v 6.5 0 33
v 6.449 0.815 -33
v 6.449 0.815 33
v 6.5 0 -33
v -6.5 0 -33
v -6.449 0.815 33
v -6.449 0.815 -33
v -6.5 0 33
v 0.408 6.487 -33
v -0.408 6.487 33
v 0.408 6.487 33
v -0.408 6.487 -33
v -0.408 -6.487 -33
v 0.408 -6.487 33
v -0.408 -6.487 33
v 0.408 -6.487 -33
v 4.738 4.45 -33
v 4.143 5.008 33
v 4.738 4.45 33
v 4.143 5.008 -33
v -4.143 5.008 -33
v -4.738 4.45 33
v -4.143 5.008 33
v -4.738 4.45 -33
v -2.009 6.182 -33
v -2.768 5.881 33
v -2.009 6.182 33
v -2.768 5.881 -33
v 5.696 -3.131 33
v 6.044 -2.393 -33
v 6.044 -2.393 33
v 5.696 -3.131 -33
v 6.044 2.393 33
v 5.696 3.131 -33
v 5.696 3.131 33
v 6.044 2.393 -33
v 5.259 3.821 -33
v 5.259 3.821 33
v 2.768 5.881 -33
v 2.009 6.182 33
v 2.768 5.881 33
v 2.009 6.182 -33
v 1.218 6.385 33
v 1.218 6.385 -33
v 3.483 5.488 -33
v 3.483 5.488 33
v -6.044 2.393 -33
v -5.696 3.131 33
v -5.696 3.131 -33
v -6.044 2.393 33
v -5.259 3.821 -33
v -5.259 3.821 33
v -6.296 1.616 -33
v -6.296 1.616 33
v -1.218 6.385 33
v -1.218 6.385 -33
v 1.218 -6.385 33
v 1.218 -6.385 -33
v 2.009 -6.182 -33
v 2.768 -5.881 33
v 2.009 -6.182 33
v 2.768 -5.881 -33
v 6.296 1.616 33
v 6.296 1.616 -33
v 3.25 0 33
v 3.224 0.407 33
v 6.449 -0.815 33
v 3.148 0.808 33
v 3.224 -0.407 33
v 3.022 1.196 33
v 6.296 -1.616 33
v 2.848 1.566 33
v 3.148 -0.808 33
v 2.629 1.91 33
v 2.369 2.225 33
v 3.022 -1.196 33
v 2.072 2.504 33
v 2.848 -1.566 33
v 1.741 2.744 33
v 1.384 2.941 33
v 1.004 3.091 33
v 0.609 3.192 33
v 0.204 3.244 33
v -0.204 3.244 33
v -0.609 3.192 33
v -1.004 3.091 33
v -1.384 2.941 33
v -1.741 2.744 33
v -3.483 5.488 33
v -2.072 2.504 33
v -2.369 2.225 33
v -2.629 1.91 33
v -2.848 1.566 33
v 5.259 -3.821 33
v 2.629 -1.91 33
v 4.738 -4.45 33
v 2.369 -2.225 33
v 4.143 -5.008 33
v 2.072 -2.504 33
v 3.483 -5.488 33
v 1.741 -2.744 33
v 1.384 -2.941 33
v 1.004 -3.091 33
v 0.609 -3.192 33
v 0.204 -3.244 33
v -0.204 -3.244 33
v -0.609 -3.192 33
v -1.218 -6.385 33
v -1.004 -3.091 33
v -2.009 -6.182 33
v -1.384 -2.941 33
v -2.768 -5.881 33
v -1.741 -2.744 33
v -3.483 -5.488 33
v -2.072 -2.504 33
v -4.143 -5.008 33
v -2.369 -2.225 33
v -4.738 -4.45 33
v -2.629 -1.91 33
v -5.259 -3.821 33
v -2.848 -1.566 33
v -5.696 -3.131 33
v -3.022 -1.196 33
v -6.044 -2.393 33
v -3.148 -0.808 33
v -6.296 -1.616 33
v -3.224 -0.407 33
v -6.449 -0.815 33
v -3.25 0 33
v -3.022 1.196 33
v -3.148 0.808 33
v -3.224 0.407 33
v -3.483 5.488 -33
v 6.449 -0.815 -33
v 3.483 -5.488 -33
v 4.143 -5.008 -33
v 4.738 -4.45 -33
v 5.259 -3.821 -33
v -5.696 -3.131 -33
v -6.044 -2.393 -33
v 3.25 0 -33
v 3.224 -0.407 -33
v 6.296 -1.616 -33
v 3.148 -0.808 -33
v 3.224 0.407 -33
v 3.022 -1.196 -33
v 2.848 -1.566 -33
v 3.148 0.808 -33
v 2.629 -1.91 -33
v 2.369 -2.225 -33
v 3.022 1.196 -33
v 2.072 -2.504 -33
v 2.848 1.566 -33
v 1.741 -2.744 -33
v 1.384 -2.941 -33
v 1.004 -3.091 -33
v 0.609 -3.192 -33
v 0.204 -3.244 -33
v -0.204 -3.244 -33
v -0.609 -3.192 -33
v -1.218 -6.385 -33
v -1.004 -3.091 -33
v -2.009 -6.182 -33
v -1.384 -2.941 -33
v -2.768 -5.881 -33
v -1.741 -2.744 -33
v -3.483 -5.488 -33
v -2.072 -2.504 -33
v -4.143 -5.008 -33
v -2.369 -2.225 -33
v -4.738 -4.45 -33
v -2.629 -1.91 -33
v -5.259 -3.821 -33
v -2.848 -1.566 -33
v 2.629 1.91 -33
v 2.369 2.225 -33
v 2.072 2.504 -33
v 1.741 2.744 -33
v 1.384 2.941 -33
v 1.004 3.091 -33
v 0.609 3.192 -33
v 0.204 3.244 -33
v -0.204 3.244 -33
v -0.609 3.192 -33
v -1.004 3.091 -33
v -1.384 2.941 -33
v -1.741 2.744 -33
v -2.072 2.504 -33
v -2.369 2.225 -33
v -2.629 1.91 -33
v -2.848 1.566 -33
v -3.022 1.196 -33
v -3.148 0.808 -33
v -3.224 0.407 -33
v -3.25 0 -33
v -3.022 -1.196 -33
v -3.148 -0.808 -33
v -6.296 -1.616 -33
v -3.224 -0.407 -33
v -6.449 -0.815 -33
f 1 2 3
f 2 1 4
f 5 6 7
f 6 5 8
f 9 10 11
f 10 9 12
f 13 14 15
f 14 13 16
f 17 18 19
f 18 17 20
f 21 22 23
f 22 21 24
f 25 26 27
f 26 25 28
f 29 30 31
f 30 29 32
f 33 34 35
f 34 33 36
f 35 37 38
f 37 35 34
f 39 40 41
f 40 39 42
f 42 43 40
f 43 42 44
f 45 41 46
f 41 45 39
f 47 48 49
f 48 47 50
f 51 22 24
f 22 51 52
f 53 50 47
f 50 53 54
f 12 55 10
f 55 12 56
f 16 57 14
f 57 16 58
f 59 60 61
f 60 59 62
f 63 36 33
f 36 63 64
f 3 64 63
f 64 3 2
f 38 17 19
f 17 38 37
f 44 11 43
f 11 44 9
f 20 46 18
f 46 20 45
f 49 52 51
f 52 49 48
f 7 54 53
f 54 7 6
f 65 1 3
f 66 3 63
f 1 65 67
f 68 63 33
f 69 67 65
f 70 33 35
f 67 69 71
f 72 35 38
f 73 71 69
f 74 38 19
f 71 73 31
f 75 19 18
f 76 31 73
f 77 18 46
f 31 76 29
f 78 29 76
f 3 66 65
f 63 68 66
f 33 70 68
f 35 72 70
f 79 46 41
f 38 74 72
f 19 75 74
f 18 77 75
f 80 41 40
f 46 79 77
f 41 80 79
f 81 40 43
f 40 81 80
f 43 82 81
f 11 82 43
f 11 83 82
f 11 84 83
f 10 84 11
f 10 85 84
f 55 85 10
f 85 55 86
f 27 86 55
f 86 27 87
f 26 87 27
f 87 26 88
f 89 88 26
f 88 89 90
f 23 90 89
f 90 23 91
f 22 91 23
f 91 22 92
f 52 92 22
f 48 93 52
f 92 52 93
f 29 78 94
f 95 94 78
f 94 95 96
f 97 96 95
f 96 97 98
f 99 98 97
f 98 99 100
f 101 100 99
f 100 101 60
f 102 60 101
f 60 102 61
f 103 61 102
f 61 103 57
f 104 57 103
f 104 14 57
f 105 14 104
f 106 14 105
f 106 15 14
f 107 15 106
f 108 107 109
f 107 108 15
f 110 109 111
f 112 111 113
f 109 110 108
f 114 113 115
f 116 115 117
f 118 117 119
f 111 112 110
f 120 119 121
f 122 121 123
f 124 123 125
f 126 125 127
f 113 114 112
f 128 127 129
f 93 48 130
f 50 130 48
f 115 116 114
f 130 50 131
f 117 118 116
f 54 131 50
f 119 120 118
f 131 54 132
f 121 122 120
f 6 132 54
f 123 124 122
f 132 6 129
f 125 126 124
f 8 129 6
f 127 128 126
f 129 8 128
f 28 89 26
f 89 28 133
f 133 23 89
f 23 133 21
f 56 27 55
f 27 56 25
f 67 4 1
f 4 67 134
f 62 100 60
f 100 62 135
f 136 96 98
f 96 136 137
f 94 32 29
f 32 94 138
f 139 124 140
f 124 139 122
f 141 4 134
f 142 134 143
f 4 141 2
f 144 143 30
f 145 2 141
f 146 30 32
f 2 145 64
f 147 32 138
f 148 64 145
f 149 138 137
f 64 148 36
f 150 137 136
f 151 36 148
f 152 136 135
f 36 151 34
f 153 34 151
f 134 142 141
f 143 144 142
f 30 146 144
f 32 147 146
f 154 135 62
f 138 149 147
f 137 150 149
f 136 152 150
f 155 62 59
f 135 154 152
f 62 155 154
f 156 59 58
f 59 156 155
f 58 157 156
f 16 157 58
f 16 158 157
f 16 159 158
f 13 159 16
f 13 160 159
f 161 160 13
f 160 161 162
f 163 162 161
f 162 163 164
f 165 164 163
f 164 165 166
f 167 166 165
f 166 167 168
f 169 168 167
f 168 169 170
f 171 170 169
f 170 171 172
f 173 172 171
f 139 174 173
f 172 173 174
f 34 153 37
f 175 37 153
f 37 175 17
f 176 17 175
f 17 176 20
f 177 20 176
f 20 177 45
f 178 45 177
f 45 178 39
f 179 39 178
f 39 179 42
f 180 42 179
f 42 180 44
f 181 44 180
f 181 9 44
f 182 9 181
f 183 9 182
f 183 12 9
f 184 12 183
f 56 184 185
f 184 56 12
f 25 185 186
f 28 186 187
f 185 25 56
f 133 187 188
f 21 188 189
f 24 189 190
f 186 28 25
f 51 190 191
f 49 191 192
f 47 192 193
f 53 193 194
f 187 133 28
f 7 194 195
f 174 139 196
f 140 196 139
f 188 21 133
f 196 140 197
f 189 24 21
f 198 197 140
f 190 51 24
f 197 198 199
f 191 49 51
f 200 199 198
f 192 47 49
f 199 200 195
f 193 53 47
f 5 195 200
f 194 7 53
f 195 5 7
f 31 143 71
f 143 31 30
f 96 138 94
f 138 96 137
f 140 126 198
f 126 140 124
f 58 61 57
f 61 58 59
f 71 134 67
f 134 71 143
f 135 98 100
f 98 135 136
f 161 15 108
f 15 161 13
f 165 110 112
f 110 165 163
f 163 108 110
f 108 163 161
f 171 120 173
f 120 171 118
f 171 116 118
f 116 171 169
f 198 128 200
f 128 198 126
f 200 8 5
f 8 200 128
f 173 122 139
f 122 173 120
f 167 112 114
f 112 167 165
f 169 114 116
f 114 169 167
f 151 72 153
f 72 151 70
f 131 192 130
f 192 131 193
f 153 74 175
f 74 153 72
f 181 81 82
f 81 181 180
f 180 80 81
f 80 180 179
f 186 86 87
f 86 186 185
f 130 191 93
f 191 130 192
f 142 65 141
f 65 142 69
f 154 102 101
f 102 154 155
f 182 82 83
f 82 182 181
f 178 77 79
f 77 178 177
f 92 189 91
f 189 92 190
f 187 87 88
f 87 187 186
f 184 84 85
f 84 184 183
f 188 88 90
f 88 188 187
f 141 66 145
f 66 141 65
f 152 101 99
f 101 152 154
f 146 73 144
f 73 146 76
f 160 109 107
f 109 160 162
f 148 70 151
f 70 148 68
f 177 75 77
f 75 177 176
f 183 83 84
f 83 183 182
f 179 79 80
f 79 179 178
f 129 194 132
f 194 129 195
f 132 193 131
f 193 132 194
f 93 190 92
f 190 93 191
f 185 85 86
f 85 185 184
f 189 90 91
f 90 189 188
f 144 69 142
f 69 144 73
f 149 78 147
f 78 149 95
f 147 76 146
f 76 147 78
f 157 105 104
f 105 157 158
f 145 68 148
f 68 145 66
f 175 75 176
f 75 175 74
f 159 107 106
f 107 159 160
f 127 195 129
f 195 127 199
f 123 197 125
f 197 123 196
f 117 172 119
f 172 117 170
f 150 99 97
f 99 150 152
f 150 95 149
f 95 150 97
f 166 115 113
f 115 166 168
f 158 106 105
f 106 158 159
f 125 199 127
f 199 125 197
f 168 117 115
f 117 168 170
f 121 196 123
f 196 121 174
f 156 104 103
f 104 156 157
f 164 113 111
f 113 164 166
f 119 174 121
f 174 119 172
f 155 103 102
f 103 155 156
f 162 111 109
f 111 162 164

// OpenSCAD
$fn = 50;


difference() {
	union() {
		translate(v = [0, 0, -33.0000000000]) {
			cylinder(h = 66, r = 6.5000000000);
		}
	}
	union() {
		translate(v = [0, 0, -100.0000000000]) {
			cylinder(h = 200, r = 3.2500000000);
		}
	}
}
